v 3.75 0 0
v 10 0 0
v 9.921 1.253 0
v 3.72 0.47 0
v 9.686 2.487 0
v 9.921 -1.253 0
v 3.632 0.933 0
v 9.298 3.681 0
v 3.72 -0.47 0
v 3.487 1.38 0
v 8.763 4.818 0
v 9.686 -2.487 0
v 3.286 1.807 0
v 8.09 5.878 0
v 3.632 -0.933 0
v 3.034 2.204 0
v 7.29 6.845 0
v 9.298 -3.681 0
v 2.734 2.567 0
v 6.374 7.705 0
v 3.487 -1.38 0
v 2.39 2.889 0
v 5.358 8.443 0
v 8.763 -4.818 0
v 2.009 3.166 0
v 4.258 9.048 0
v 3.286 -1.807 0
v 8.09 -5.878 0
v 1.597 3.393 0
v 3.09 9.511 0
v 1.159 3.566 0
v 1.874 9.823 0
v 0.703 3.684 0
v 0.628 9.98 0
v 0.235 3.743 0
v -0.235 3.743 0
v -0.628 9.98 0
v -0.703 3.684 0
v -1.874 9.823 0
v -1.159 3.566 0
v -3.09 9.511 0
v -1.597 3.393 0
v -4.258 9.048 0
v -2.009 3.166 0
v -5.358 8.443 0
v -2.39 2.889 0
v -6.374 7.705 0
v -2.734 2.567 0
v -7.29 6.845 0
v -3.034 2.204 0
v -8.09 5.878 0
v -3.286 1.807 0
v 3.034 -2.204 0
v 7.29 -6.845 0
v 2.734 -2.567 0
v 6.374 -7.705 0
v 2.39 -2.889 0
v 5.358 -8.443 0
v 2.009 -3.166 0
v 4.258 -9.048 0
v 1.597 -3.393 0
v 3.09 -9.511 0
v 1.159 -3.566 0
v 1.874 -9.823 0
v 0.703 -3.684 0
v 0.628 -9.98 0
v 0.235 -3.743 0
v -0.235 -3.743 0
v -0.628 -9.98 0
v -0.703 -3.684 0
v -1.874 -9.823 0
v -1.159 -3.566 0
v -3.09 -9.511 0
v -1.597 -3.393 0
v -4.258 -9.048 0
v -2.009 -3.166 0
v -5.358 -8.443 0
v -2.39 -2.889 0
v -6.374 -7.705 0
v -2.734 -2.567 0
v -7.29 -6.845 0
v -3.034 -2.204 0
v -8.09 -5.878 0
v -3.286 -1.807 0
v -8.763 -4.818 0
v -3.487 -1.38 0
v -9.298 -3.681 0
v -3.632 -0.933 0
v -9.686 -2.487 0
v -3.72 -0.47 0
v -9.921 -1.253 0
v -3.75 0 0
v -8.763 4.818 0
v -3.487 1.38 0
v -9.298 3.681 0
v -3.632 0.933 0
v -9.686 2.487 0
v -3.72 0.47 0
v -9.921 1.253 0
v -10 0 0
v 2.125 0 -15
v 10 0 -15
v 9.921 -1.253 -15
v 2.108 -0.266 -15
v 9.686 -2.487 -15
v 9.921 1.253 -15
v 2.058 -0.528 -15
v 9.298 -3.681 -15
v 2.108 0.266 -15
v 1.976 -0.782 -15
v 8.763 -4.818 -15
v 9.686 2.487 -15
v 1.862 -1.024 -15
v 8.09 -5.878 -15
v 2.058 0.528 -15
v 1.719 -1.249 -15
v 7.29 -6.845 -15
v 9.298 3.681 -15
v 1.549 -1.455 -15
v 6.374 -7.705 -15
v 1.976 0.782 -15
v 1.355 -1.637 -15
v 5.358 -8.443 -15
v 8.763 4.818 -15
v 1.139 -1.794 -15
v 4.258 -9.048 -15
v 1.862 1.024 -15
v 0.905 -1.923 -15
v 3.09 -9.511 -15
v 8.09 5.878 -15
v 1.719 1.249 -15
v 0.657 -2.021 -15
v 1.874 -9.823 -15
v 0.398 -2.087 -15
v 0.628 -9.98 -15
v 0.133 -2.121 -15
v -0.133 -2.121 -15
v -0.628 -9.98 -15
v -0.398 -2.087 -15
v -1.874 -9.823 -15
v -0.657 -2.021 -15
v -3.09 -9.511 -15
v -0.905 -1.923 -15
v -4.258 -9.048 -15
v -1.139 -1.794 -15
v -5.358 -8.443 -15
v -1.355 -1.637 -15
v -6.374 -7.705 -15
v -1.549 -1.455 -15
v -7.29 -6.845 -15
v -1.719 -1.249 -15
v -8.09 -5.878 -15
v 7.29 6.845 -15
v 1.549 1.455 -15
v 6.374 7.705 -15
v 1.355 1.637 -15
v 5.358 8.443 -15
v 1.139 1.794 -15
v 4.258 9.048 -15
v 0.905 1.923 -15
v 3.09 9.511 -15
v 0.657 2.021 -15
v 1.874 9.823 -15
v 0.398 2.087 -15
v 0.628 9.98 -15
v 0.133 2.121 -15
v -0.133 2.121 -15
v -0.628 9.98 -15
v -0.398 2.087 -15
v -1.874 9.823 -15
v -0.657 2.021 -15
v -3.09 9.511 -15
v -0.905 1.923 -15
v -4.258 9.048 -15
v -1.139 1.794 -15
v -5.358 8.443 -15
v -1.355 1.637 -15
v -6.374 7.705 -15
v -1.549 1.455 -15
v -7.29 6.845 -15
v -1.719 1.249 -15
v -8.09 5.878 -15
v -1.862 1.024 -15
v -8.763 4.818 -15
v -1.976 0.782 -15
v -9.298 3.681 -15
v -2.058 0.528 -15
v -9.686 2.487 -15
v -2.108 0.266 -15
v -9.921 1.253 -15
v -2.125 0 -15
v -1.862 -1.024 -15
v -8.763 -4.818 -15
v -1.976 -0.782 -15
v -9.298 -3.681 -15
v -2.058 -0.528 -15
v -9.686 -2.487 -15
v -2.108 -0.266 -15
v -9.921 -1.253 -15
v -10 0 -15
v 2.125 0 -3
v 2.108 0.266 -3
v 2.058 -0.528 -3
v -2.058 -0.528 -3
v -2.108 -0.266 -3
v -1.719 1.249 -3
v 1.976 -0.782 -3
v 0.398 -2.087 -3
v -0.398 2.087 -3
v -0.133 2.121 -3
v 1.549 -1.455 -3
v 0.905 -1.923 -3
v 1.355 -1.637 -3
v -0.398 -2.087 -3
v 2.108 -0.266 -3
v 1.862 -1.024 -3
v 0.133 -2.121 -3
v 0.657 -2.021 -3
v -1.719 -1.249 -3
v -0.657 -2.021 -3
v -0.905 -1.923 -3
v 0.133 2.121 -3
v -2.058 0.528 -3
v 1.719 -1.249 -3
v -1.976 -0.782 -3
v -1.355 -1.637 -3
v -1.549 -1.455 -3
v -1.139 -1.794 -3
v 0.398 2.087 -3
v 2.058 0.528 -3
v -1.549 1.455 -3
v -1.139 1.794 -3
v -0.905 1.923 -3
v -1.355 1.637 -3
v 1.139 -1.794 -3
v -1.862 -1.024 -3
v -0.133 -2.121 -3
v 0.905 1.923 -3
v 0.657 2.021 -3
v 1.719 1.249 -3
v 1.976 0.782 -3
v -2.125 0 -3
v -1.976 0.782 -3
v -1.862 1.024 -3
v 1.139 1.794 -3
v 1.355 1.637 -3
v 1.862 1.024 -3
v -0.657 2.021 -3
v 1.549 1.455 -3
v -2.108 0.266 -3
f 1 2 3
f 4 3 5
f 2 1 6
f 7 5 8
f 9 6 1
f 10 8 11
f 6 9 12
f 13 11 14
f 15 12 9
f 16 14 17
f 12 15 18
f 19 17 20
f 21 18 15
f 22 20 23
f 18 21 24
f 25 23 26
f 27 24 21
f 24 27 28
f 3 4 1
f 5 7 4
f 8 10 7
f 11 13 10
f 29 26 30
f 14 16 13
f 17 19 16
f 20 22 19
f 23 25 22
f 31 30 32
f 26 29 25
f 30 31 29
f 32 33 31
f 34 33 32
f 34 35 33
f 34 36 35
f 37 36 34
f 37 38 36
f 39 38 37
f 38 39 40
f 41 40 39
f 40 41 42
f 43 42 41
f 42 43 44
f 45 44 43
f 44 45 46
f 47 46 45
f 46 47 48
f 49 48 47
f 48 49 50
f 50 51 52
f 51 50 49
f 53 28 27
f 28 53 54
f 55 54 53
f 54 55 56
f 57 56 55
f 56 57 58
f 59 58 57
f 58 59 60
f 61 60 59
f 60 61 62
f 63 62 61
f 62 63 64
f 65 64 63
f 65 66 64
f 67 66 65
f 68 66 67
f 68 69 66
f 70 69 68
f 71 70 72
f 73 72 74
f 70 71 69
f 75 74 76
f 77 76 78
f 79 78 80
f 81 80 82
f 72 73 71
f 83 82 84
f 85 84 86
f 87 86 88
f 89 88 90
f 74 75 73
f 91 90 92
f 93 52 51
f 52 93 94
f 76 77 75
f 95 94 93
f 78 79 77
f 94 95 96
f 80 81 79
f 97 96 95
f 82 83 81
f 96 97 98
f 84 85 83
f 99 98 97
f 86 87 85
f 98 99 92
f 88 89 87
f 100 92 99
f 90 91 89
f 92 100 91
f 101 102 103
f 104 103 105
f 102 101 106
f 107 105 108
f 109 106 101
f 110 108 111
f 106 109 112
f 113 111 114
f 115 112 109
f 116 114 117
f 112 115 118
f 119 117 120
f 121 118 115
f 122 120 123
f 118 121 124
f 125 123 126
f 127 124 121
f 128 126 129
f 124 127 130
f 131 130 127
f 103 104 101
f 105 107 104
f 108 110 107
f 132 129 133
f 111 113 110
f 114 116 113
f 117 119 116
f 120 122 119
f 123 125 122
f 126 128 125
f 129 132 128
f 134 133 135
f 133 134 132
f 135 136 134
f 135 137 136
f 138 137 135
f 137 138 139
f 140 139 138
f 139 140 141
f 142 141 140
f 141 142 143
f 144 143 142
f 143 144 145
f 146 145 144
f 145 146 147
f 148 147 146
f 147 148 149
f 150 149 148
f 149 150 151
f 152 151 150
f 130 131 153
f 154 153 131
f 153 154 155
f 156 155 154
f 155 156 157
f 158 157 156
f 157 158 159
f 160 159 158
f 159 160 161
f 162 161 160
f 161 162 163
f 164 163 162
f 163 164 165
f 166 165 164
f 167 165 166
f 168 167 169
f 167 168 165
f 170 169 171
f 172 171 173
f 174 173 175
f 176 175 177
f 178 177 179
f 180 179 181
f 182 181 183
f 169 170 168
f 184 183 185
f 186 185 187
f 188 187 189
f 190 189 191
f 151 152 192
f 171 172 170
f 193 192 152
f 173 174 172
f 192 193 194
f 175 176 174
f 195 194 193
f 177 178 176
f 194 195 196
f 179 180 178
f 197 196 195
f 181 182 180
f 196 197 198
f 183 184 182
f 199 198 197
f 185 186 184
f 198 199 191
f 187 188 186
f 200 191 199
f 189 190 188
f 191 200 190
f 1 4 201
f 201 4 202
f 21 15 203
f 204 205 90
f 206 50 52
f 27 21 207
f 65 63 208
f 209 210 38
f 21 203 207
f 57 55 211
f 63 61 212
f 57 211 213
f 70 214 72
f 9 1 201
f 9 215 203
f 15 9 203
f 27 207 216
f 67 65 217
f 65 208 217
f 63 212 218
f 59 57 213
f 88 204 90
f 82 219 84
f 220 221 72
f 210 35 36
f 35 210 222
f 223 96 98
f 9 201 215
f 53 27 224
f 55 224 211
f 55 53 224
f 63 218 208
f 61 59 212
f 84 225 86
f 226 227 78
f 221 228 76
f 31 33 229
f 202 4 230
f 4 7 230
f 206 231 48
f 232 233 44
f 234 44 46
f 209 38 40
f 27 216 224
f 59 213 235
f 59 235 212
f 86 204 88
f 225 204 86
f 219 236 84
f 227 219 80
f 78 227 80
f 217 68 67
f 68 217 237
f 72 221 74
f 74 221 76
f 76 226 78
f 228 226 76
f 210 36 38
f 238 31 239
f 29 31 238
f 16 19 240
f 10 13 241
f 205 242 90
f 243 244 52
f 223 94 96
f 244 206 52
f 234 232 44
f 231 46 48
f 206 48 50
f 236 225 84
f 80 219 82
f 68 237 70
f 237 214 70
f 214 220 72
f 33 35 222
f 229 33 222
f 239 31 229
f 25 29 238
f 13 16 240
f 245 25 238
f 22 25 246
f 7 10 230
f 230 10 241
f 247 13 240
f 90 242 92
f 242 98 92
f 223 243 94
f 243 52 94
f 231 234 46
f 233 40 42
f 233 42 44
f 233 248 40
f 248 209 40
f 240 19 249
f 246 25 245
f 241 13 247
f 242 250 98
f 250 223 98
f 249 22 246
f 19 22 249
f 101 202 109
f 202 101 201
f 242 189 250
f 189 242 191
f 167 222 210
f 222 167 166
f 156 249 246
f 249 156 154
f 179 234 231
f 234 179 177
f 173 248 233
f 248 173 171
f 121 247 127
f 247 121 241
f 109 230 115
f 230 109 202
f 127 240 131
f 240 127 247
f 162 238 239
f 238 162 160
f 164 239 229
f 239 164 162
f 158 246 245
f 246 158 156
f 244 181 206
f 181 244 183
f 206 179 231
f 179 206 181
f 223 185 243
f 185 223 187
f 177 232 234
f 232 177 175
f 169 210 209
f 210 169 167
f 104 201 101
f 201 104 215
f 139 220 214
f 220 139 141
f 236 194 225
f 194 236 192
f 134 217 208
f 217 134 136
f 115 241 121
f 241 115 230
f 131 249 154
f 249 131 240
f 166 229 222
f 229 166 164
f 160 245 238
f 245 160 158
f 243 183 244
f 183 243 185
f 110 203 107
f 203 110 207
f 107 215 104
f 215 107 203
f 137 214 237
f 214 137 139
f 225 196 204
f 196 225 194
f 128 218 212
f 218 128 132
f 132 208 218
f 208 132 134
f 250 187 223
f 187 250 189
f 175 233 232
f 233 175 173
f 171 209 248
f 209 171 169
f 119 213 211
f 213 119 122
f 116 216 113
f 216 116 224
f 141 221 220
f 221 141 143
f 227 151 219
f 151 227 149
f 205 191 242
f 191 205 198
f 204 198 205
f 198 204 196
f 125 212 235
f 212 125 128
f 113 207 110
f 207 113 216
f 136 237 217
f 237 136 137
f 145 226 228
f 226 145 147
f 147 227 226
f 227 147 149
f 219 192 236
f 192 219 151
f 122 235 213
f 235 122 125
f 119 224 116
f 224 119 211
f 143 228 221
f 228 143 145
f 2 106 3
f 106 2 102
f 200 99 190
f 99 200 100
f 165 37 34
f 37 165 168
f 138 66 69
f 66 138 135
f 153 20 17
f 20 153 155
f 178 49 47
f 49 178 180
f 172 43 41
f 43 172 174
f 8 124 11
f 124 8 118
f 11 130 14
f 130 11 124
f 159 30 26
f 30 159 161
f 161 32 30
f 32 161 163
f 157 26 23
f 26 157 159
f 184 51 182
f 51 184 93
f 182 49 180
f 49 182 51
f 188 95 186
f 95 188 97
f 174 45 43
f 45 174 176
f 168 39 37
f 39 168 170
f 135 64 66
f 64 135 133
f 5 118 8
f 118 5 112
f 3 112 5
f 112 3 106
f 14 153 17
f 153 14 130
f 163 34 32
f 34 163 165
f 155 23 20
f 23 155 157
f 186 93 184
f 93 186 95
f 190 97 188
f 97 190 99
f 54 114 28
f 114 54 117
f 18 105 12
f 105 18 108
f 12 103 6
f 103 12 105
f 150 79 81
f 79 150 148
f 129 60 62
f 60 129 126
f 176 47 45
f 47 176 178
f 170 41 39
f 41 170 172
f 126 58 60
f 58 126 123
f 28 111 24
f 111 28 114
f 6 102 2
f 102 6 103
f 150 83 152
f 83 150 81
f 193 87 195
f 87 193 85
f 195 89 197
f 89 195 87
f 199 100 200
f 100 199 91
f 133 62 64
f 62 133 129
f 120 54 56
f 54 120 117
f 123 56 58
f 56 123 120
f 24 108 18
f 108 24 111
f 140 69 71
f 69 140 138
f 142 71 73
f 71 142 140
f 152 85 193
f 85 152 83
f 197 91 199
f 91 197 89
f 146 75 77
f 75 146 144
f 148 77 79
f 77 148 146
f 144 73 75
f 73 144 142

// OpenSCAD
$fn = 50;


difference() {
	union() {
		translate(v = [0, 0, -15.0000000000]) {
			cylinder(h = 15, r = 10.0000000000);
		}
		cylinder(h = 0, r = 16.0000000000);
	}
	union() {
		translate(v = [0, 0, 0]) {
			rotate(a = [0, 0, 0]) {
				difference() {
					union() {
						#translate(v = [0, 0, -15.0000000000]) {
							cylinder(h = 15, r = 2.0000000000);
						}
						#translate(v = [0, 0, -3]) {
							cylinder(h = 3, r = 10.0000000000, r1 = 2.1250000000, r2 = 3.7500000000);
						}
						#translate(v = [0, 0, -15.0000000000]) {
							cylinder(h = 15, r = 2.1250000000);
						}
						#translate(v = [0, 0, -15.0000000000]) {
							cylinder(h = 15, r = 2.0000000000);
						}
					}
					union();
				}
			}
		}
	}
}
